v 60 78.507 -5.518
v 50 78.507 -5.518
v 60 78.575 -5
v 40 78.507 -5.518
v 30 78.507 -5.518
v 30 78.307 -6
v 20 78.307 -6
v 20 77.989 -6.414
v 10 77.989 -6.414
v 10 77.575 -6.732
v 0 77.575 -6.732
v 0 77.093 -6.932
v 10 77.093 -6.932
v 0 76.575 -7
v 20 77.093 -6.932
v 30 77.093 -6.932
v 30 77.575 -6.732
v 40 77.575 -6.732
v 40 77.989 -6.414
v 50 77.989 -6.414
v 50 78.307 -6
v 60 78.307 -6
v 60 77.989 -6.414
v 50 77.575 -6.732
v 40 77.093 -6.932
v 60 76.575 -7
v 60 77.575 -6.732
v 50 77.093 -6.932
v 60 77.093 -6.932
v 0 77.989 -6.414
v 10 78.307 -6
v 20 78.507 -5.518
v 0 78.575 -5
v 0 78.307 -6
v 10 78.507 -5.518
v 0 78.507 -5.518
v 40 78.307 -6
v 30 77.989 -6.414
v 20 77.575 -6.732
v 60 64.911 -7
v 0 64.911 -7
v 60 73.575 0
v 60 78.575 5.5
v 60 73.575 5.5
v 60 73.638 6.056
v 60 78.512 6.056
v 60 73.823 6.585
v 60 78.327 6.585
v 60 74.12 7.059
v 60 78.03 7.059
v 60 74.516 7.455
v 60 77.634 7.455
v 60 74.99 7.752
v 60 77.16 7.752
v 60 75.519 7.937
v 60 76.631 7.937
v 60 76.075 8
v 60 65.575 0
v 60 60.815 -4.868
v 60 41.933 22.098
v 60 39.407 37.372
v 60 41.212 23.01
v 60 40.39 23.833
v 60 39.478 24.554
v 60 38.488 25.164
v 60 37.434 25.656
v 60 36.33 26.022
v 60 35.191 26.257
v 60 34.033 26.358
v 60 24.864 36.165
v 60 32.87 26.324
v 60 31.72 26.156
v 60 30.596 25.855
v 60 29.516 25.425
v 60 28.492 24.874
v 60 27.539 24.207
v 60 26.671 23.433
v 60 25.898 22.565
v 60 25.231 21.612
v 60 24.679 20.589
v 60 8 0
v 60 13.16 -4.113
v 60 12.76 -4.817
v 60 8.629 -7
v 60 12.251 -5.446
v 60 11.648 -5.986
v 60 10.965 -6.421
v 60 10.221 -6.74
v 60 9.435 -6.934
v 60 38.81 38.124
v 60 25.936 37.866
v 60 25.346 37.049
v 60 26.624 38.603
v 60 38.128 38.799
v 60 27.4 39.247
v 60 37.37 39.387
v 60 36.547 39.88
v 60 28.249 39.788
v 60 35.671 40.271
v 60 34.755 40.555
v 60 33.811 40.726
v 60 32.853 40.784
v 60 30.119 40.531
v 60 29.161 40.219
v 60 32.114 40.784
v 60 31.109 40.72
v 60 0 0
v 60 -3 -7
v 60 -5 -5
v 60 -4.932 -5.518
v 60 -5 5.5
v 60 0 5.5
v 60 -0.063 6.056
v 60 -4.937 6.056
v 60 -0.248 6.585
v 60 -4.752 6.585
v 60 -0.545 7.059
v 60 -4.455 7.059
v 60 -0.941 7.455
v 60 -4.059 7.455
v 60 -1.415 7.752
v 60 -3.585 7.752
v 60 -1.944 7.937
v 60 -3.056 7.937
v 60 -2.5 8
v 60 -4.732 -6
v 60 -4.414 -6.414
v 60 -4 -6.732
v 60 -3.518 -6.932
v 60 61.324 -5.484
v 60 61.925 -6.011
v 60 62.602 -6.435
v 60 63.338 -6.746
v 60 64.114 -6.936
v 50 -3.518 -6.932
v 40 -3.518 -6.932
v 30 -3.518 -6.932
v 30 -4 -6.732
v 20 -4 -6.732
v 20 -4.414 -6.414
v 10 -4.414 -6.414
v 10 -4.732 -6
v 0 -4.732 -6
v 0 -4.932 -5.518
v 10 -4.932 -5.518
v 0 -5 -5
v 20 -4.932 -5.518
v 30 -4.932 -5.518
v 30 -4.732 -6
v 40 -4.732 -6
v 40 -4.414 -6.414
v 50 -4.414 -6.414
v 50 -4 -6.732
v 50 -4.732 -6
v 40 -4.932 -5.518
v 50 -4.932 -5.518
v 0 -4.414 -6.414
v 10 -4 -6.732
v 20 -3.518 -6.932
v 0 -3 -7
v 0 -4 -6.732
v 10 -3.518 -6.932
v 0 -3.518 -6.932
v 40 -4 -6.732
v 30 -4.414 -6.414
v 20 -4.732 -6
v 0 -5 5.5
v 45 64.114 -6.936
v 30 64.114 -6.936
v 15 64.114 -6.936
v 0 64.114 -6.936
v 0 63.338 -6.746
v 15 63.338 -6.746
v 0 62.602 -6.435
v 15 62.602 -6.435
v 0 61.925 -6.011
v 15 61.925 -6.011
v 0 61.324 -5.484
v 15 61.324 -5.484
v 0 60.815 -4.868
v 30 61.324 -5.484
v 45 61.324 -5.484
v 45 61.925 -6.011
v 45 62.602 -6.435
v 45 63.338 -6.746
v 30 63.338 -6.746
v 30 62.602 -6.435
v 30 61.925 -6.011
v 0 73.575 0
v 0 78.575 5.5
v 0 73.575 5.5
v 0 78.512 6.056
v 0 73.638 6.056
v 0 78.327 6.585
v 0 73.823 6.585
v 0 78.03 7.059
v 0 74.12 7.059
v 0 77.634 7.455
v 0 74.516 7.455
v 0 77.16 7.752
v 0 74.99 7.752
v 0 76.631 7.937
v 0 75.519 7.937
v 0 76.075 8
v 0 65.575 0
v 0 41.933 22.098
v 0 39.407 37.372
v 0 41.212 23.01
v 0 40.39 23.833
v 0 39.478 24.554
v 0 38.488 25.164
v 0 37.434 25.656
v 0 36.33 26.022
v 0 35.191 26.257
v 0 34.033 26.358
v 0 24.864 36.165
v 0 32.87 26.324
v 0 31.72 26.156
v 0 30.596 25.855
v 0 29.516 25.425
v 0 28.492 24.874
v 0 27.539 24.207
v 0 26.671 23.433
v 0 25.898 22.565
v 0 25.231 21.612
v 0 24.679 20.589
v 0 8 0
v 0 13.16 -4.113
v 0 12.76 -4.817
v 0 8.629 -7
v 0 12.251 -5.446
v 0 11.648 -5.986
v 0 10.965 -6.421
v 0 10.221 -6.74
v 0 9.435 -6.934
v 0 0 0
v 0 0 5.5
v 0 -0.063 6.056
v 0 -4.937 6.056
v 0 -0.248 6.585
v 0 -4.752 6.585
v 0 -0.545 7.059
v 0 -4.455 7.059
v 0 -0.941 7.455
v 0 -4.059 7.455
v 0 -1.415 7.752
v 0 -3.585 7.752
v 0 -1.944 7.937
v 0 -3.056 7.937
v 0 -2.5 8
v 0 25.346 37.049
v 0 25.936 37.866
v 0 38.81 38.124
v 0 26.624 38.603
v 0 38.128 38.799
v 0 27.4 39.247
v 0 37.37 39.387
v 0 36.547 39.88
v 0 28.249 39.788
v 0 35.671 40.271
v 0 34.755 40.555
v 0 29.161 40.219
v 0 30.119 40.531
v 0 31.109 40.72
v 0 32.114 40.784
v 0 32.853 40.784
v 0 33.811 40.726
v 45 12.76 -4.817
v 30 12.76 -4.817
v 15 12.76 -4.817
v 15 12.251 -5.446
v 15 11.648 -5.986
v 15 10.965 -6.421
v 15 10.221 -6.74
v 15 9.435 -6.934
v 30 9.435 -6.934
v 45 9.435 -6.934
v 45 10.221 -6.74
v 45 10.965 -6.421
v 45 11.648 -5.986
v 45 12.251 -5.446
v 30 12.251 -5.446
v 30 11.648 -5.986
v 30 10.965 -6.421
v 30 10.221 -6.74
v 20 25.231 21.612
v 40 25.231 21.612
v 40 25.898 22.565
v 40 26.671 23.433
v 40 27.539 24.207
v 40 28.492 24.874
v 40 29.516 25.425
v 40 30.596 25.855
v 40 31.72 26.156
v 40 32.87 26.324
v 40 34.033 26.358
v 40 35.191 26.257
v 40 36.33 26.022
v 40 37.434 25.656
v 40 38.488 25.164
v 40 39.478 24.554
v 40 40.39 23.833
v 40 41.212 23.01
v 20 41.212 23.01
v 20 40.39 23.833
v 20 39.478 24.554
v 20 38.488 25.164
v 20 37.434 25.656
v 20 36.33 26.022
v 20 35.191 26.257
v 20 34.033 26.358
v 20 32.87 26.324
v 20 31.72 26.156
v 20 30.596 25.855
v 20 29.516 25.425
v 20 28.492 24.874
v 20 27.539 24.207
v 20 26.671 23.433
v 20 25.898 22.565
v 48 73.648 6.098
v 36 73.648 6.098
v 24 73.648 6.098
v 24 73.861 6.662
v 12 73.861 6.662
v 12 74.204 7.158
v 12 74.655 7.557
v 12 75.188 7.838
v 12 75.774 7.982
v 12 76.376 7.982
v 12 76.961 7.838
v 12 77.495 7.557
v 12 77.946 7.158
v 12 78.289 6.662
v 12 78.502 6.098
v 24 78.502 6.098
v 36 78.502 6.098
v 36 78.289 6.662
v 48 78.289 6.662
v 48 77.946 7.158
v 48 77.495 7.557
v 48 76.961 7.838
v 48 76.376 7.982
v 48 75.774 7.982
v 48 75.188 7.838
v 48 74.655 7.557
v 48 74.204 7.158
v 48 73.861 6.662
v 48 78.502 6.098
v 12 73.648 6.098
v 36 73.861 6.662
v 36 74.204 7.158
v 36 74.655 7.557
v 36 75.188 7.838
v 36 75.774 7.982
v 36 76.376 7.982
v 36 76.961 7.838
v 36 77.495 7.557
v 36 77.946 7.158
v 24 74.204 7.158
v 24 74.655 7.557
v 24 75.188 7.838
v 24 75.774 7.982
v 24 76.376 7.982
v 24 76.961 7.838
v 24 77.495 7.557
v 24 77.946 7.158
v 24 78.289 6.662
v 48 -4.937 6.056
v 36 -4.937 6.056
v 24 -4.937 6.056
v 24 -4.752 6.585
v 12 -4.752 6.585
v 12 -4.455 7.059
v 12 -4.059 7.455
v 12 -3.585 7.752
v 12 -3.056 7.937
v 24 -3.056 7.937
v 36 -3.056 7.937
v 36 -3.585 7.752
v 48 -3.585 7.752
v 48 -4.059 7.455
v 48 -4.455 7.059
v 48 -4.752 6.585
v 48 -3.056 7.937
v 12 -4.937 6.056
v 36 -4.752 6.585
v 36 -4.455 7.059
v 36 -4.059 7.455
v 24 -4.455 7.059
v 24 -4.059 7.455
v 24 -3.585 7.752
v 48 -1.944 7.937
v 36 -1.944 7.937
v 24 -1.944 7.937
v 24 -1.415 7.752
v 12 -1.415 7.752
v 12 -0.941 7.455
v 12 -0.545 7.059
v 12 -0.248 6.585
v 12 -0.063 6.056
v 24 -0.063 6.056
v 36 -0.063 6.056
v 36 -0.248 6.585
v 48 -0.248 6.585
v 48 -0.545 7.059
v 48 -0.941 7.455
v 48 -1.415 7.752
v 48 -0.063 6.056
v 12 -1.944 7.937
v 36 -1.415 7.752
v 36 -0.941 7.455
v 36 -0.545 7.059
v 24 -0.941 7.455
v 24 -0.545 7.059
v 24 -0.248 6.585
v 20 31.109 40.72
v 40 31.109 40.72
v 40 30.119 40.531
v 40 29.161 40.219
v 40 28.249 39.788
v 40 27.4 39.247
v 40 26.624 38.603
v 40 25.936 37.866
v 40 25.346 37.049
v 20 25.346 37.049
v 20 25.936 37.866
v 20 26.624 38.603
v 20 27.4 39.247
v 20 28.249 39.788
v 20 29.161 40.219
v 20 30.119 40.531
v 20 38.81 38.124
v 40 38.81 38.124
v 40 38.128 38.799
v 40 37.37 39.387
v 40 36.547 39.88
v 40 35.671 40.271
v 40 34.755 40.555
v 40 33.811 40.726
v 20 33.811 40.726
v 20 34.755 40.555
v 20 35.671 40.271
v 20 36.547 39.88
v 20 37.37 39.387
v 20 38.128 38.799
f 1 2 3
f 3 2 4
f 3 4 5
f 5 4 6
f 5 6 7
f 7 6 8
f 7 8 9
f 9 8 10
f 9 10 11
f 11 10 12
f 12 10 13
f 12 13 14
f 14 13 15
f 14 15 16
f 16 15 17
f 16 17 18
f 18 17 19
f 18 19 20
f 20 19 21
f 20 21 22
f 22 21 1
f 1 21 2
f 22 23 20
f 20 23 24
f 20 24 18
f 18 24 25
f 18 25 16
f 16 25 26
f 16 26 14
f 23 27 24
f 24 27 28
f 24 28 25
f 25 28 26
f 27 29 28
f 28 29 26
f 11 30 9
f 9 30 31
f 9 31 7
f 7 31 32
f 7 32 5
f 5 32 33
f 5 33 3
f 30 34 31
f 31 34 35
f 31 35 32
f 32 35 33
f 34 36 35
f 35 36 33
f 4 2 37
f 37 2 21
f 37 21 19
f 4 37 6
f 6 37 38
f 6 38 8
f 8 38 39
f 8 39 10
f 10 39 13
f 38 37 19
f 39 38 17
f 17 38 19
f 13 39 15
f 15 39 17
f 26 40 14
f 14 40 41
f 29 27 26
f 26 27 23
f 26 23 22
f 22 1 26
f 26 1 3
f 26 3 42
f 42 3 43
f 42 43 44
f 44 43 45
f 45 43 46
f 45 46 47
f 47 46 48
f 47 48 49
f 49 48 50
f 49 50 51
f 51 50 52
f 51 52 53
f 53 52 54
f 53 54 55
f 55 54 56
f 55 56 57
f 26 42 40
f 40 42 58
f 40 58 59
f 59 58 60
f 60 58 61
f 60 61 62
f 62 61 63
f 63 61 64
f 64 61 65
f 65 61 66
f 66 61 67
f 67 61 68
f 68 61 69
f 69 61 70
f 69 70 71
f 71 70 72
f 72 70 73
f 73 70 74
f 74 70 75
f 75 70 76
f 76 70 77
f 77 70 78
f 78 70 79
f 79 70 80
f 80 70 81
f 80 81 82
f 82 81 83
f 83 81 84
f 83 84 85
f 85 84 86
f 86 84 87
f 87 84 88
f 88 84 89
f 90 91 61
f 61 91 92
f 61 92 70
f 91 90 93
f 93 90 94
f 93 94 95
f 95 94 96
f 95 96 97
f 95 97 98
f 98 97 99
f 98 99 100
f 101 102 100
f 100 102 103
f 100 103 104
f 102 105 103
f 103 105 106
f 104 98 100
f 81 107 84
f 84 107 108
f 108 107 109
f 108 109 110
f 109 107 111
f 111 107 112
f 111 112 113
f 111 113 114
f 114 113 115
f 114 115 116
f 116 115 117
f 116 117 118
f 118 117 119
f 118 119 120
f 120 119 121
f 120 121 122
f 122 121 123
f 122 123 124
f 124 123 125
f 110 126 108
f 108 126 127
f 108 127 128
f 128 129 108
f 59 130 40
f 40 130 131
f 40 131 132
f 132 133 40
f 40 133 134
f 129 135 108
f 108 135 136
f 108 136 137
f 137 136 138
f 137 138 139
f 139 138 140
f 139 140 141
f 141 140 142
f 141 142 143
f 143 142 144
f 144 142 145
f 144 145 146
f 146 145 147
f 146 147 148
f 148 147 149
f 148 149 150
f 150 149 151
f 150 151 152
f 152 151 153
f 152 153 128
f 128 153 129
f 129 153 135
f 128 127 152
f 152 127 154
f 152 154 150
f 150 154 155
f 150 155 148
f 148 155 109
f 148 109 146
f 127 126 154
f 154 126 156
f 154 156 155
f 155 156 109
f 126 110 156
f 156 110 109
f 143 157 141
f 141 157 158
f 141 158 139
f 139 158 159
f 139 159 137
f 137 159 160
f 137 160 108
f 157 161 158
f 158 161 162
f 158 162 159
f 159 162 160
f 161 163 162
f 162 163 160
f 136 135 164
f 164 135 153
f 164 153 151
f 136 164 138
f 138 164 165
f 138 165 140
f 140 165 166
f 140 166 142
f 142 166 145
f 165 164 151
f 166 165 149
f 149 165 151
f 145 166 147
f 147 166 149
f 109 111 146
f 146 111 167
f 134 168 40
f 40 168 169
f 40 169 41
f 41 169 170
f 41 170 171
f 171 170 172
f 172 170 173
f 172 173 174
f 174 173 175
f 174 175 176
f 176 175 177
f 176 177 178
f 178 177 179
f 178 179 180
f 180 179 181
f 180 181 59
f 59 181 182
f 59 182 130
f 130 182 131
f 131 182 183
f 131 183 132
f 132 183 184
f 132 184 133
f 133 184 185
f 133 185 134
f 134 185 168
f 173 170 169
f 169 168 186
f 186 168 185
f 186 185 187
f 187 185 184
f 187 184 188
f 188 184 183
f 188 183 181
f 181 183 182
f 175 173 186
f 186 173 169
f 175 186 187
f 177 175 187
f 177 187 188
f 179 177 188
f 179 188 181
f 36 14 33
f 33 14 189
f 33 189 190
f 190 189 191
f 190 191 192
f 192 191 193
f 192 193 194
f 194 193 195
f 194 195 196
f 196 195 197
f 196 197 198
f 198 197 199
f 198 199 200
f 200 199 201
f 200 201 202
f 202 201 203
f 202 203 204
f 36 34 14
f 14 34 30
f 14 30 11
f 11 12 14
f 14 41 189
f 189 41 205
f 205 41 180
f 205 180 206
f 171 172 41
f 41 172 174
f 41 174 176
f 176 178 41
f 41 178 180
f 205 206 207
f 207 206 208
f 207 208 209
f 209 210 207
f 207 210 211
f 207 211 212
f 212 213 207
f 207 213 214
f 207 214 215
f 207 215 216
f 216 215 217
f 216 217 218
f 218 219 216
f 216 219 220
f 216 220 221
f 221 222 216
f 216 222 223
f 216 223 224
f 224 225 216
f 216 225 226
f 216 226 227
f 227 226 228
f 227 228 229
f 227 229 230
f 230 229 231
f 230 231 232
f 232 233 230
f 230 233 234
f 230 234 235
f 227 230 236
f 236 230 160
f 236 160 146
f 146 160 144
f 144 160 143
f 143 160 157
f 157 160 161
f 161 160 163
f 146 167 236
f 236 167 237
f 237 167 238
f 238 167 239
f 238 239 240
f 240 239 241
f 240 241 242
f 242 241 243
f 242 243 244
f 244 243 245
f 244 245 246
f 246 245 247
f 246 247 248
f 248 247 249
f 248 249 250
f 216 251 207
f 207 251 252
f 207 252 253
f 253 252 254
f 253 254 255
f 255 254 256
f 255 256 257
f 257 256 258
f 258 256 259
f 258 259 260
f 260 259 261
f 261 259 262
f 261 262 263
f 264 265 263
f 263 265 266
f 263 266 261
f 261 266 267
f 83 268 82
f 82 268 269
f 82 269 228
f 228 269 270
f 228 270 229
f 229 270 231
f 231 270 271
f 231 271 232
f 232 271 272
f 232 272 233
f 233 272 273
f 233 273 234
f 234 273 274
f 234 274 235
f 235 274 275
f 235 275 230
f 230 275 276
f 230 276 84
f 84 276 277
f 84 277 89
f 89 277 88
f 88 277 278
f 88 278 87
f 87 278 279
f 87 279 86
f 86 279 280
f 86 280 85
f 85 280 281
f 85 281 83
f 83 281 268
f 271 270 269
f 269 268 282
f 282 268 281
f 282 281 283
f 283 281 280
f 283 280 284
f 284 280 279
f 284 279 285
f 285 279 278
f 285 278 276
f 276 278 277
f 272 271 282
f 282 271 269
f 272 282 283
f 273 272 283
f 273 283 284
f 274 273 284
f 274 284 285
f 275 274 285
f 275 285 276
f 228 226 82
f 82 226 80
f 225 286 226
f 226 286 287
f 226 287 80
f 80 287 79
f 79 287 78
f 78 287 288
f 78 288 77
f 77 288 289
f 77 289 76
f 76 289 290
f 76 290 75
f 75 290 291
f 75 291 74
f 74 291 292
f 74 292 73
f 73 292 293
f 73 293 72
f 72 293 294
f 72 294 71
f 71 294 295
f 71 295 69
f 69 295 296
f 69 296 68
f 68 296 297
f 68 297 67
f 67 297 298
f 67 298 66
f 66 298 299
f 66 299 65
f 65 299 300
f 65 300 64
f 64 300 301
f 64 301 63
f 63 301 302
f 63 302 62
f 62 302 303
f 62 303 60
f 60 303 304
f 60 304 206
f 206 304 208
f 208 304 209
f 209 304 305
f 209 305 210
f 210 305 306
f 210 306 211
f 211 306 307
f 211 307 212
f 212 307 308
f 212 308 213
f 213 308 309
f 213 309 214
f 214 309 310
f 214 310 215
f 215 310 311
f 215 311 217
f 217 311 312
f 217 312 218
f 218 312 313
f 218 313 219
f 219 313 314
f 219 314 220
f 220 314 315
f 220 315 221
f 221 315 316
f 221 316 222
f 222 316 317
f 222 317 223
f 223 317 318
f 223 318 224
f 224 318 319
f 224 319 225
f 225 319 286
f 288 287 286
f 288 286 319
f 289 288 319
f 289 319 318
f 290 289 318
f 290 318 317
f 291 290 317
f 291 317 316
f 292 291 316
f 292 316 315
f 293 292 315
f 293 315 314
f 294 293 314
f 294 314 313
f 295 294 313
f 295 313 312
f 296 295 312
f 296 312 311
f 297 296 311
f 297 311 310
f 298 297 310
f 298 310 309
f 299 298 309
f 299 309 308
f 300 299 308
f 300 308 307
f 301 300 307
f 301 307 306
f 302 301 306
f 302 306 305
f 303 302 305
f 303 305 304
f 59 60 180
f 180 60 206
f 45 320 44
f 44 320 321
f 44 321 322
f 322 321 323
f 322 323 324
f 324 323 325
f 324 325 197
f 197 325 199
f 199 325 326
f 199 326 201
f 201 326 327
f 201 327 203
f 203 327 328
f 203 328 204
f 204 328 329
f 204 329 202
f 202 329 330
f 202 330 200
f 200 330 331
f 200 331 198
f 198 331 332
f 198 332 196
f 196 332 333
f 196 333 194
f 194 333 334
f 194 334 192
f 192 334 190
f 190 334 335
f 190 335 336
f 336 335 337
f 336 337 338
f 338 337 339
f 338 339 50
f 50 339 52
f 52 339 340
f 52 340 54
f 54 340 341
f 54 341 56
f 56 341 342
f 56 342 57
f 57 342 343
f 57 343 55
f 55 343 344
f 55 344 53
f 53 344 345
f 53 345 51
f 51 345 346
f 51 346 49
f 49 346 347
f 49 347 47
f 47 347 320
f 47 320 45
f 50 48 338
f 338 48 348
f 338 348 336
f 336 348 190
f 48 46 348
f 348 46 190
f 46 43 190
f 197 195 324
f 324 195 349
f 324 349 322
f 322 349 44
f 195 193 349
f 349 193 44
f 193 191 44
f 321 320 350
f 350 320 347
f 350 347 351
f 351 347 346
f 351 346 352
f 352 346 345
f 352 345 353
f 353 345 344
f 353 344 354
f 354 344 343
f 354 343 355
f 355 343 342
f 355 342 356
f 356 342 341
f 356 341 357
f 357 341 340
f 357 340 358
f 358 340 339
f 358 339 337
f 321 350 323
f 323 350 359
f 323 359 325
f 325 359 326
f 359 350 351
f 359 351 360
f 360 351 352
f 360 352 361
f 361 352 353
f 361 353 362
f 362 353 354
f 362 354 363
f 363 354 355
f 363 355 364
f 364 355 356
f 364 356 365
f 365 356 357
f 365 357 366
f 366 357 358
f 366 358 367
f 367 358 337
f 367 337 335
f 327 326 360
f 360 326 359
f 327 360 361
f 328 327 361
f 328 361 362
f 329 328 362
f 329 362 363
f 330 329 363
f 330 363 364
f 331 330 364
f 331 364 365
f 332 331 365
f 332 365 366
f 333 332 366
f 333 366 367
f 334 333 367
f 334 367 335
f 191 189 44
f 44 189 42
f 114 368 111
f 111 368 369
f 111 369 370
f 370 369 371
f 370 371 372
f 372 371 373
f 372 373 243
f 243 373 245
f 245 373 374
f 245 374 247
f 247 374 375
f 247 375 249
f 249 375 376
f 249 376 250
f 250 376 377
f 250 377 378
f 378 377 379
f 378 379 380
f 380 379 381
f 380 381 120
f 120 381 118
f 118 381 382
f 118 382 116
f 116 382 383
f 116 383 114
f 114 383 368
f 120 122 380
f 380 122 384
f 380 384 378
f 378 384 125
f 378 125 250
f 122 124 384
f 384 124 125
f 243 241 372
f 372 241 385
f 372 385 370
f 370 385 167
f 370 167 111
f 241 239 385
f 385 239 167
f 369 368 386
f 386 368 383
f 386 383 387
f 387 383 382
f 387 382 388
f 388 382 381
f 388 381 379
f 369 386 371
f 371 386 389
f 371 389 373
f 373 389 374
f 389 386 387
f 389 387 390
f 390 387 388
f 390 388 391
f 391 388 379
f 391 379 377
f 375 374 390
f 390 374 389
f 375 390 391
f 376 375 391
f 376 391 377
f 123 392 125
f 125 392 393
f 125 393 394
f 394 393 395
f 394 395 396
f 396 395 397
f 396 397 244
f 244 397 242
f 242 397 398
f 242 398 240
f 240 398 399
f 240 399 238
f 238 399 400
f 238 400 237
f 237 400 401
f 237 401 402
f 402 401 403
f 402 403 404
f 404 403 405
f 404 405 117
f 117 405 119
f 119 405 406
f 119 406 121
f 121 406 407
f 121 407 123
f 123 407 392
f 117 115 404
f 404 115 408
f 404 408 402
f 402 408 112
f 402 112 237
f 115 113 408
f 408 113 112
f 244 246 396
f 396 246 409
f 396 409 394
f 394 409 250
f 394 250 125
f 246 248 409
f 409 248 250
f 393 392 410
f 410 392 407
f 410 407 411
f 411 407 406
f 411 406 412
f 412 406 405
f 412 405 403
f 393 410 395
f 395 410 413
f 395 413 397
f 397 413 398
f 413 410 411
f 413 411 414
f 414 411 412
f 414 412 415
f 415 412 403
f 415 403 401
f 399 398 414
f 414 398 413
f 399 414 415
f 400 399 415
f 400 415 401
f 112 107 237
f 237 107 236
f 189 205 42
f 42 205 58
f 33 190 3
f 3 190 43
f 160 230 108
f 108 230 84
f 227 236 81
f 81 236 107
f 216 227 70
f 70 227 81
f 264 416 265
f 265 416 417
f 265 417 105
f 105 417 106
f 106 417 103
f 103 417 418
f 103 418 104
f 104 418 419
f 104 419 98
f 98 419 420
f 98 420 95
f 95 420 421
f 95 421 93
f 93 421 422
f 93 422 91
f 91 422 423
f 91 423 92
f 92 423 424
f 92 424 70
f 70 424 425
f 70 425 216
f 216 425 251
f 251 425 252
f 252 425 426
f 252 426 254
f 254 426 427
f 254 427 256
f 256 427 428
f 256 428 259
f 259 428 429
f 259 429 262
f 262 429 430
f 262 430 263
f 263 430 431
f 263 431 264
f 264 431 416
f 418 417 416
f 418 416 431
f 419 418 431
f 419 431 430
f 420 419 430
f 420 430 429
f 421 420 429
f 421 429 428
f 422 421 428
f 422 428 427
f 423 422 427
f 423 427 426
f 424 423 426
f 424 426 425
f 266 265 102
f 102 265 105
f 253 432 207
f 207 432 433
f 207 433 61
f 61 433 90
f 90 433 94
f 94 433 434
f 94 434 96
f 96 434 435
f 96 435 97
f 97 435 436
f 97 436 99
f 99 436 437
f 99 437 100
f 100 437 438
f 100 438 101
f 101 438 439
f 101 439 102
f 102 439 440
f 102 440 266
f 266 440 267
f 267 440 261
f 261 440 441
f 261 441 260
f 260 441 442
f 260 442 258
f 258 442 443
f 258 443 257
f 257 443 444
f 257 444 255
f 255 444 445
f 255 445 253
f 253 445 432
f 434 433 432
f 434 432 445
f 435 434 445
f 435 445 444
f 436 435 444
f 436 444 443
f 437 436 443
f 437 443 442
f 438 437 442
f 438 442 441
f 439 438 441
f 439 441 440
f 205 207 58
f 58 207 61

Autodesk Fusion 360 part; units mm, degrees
sketch "Sketch1" plane through (0, 0, 0) normal (1, 0, 0) x (0, 1, 0)
  line L0 (0, 0) -> (8, 0)
  line L1 (8, 0) -> (24.8639, 36.1648)
  line L2 (0, 0) -> (0, 8)
  line L3 (0, 8) -> (-5, 8)
  line L4 (-5, 8) -> (-5, -7)
  line L5 (-5, -7) -> (11.814, -7)
  line L6 (11.814, -7) -> (31.9987, 36.2863)
  line L7 (32.1144, 40.7839) -> (32.8533, 40.7839)
  line L8 (39.4065, 37.3725) -> (65.575, 0)
  line L9 (37.0178, 40.7839) -> (86.8057, 40.7839) construction
  line L10 (65.575, 0) -> (73.575, 0)
  line L11 (73.575, 0) -> (73.575, 8)
  line L12 (73.575, 8) -> (78.575, 8)
  line L13 (78.575, 8) -> (78.575, -7)
  line L14 (78.575, -7) -> (62.3081, -7)
  line L15 (31.9987, 36.2863) -> (62.3081, -7)
  line L16 (35, 32) -> (86.0392, 32) construction
  arc A0 (32.1144, 40.7839) -> (24.8639, 36.1648) centre (32.1144, 32.7839) ccw
  arc A1 (39.4065, 37.3725) -> (32.8533, 40.7839) centre (32.8533, 32.7839) ccw
  point P0 (27.0178, 40.7839)
  dimension "d6" = 115
  dimension "d8" = 115
  dimension "d9" = 10
  dimension "d10" = 55
  dimension "d11" = 8
  dimension "d12" = 5
  dimension "d13" = 8
  dimension "d14" = 0
  dimension "d15" = 7
  dimension "d17" = 55
  dimension "d20" = 8
extrude "Extrude1" add sketch "Sketch1" along normal blind 60
fillet "Fillet1" radius 2.5 4 edges at (30, 0, 8) (30, -5, 8) (30, 73.575, 8) (30, 78.575, 8)
fillet "Fillet2" radius 10 1 edges at (30, 31.9987, 36.2863)
fillet "Fillet3" radius 5 2 edges at (30, 11.814, -7) (30, 62.3081, -7)
fillet "Fillet4" radius 2 2 edges at (30, -5, -7) (30, 78.575, -7)
